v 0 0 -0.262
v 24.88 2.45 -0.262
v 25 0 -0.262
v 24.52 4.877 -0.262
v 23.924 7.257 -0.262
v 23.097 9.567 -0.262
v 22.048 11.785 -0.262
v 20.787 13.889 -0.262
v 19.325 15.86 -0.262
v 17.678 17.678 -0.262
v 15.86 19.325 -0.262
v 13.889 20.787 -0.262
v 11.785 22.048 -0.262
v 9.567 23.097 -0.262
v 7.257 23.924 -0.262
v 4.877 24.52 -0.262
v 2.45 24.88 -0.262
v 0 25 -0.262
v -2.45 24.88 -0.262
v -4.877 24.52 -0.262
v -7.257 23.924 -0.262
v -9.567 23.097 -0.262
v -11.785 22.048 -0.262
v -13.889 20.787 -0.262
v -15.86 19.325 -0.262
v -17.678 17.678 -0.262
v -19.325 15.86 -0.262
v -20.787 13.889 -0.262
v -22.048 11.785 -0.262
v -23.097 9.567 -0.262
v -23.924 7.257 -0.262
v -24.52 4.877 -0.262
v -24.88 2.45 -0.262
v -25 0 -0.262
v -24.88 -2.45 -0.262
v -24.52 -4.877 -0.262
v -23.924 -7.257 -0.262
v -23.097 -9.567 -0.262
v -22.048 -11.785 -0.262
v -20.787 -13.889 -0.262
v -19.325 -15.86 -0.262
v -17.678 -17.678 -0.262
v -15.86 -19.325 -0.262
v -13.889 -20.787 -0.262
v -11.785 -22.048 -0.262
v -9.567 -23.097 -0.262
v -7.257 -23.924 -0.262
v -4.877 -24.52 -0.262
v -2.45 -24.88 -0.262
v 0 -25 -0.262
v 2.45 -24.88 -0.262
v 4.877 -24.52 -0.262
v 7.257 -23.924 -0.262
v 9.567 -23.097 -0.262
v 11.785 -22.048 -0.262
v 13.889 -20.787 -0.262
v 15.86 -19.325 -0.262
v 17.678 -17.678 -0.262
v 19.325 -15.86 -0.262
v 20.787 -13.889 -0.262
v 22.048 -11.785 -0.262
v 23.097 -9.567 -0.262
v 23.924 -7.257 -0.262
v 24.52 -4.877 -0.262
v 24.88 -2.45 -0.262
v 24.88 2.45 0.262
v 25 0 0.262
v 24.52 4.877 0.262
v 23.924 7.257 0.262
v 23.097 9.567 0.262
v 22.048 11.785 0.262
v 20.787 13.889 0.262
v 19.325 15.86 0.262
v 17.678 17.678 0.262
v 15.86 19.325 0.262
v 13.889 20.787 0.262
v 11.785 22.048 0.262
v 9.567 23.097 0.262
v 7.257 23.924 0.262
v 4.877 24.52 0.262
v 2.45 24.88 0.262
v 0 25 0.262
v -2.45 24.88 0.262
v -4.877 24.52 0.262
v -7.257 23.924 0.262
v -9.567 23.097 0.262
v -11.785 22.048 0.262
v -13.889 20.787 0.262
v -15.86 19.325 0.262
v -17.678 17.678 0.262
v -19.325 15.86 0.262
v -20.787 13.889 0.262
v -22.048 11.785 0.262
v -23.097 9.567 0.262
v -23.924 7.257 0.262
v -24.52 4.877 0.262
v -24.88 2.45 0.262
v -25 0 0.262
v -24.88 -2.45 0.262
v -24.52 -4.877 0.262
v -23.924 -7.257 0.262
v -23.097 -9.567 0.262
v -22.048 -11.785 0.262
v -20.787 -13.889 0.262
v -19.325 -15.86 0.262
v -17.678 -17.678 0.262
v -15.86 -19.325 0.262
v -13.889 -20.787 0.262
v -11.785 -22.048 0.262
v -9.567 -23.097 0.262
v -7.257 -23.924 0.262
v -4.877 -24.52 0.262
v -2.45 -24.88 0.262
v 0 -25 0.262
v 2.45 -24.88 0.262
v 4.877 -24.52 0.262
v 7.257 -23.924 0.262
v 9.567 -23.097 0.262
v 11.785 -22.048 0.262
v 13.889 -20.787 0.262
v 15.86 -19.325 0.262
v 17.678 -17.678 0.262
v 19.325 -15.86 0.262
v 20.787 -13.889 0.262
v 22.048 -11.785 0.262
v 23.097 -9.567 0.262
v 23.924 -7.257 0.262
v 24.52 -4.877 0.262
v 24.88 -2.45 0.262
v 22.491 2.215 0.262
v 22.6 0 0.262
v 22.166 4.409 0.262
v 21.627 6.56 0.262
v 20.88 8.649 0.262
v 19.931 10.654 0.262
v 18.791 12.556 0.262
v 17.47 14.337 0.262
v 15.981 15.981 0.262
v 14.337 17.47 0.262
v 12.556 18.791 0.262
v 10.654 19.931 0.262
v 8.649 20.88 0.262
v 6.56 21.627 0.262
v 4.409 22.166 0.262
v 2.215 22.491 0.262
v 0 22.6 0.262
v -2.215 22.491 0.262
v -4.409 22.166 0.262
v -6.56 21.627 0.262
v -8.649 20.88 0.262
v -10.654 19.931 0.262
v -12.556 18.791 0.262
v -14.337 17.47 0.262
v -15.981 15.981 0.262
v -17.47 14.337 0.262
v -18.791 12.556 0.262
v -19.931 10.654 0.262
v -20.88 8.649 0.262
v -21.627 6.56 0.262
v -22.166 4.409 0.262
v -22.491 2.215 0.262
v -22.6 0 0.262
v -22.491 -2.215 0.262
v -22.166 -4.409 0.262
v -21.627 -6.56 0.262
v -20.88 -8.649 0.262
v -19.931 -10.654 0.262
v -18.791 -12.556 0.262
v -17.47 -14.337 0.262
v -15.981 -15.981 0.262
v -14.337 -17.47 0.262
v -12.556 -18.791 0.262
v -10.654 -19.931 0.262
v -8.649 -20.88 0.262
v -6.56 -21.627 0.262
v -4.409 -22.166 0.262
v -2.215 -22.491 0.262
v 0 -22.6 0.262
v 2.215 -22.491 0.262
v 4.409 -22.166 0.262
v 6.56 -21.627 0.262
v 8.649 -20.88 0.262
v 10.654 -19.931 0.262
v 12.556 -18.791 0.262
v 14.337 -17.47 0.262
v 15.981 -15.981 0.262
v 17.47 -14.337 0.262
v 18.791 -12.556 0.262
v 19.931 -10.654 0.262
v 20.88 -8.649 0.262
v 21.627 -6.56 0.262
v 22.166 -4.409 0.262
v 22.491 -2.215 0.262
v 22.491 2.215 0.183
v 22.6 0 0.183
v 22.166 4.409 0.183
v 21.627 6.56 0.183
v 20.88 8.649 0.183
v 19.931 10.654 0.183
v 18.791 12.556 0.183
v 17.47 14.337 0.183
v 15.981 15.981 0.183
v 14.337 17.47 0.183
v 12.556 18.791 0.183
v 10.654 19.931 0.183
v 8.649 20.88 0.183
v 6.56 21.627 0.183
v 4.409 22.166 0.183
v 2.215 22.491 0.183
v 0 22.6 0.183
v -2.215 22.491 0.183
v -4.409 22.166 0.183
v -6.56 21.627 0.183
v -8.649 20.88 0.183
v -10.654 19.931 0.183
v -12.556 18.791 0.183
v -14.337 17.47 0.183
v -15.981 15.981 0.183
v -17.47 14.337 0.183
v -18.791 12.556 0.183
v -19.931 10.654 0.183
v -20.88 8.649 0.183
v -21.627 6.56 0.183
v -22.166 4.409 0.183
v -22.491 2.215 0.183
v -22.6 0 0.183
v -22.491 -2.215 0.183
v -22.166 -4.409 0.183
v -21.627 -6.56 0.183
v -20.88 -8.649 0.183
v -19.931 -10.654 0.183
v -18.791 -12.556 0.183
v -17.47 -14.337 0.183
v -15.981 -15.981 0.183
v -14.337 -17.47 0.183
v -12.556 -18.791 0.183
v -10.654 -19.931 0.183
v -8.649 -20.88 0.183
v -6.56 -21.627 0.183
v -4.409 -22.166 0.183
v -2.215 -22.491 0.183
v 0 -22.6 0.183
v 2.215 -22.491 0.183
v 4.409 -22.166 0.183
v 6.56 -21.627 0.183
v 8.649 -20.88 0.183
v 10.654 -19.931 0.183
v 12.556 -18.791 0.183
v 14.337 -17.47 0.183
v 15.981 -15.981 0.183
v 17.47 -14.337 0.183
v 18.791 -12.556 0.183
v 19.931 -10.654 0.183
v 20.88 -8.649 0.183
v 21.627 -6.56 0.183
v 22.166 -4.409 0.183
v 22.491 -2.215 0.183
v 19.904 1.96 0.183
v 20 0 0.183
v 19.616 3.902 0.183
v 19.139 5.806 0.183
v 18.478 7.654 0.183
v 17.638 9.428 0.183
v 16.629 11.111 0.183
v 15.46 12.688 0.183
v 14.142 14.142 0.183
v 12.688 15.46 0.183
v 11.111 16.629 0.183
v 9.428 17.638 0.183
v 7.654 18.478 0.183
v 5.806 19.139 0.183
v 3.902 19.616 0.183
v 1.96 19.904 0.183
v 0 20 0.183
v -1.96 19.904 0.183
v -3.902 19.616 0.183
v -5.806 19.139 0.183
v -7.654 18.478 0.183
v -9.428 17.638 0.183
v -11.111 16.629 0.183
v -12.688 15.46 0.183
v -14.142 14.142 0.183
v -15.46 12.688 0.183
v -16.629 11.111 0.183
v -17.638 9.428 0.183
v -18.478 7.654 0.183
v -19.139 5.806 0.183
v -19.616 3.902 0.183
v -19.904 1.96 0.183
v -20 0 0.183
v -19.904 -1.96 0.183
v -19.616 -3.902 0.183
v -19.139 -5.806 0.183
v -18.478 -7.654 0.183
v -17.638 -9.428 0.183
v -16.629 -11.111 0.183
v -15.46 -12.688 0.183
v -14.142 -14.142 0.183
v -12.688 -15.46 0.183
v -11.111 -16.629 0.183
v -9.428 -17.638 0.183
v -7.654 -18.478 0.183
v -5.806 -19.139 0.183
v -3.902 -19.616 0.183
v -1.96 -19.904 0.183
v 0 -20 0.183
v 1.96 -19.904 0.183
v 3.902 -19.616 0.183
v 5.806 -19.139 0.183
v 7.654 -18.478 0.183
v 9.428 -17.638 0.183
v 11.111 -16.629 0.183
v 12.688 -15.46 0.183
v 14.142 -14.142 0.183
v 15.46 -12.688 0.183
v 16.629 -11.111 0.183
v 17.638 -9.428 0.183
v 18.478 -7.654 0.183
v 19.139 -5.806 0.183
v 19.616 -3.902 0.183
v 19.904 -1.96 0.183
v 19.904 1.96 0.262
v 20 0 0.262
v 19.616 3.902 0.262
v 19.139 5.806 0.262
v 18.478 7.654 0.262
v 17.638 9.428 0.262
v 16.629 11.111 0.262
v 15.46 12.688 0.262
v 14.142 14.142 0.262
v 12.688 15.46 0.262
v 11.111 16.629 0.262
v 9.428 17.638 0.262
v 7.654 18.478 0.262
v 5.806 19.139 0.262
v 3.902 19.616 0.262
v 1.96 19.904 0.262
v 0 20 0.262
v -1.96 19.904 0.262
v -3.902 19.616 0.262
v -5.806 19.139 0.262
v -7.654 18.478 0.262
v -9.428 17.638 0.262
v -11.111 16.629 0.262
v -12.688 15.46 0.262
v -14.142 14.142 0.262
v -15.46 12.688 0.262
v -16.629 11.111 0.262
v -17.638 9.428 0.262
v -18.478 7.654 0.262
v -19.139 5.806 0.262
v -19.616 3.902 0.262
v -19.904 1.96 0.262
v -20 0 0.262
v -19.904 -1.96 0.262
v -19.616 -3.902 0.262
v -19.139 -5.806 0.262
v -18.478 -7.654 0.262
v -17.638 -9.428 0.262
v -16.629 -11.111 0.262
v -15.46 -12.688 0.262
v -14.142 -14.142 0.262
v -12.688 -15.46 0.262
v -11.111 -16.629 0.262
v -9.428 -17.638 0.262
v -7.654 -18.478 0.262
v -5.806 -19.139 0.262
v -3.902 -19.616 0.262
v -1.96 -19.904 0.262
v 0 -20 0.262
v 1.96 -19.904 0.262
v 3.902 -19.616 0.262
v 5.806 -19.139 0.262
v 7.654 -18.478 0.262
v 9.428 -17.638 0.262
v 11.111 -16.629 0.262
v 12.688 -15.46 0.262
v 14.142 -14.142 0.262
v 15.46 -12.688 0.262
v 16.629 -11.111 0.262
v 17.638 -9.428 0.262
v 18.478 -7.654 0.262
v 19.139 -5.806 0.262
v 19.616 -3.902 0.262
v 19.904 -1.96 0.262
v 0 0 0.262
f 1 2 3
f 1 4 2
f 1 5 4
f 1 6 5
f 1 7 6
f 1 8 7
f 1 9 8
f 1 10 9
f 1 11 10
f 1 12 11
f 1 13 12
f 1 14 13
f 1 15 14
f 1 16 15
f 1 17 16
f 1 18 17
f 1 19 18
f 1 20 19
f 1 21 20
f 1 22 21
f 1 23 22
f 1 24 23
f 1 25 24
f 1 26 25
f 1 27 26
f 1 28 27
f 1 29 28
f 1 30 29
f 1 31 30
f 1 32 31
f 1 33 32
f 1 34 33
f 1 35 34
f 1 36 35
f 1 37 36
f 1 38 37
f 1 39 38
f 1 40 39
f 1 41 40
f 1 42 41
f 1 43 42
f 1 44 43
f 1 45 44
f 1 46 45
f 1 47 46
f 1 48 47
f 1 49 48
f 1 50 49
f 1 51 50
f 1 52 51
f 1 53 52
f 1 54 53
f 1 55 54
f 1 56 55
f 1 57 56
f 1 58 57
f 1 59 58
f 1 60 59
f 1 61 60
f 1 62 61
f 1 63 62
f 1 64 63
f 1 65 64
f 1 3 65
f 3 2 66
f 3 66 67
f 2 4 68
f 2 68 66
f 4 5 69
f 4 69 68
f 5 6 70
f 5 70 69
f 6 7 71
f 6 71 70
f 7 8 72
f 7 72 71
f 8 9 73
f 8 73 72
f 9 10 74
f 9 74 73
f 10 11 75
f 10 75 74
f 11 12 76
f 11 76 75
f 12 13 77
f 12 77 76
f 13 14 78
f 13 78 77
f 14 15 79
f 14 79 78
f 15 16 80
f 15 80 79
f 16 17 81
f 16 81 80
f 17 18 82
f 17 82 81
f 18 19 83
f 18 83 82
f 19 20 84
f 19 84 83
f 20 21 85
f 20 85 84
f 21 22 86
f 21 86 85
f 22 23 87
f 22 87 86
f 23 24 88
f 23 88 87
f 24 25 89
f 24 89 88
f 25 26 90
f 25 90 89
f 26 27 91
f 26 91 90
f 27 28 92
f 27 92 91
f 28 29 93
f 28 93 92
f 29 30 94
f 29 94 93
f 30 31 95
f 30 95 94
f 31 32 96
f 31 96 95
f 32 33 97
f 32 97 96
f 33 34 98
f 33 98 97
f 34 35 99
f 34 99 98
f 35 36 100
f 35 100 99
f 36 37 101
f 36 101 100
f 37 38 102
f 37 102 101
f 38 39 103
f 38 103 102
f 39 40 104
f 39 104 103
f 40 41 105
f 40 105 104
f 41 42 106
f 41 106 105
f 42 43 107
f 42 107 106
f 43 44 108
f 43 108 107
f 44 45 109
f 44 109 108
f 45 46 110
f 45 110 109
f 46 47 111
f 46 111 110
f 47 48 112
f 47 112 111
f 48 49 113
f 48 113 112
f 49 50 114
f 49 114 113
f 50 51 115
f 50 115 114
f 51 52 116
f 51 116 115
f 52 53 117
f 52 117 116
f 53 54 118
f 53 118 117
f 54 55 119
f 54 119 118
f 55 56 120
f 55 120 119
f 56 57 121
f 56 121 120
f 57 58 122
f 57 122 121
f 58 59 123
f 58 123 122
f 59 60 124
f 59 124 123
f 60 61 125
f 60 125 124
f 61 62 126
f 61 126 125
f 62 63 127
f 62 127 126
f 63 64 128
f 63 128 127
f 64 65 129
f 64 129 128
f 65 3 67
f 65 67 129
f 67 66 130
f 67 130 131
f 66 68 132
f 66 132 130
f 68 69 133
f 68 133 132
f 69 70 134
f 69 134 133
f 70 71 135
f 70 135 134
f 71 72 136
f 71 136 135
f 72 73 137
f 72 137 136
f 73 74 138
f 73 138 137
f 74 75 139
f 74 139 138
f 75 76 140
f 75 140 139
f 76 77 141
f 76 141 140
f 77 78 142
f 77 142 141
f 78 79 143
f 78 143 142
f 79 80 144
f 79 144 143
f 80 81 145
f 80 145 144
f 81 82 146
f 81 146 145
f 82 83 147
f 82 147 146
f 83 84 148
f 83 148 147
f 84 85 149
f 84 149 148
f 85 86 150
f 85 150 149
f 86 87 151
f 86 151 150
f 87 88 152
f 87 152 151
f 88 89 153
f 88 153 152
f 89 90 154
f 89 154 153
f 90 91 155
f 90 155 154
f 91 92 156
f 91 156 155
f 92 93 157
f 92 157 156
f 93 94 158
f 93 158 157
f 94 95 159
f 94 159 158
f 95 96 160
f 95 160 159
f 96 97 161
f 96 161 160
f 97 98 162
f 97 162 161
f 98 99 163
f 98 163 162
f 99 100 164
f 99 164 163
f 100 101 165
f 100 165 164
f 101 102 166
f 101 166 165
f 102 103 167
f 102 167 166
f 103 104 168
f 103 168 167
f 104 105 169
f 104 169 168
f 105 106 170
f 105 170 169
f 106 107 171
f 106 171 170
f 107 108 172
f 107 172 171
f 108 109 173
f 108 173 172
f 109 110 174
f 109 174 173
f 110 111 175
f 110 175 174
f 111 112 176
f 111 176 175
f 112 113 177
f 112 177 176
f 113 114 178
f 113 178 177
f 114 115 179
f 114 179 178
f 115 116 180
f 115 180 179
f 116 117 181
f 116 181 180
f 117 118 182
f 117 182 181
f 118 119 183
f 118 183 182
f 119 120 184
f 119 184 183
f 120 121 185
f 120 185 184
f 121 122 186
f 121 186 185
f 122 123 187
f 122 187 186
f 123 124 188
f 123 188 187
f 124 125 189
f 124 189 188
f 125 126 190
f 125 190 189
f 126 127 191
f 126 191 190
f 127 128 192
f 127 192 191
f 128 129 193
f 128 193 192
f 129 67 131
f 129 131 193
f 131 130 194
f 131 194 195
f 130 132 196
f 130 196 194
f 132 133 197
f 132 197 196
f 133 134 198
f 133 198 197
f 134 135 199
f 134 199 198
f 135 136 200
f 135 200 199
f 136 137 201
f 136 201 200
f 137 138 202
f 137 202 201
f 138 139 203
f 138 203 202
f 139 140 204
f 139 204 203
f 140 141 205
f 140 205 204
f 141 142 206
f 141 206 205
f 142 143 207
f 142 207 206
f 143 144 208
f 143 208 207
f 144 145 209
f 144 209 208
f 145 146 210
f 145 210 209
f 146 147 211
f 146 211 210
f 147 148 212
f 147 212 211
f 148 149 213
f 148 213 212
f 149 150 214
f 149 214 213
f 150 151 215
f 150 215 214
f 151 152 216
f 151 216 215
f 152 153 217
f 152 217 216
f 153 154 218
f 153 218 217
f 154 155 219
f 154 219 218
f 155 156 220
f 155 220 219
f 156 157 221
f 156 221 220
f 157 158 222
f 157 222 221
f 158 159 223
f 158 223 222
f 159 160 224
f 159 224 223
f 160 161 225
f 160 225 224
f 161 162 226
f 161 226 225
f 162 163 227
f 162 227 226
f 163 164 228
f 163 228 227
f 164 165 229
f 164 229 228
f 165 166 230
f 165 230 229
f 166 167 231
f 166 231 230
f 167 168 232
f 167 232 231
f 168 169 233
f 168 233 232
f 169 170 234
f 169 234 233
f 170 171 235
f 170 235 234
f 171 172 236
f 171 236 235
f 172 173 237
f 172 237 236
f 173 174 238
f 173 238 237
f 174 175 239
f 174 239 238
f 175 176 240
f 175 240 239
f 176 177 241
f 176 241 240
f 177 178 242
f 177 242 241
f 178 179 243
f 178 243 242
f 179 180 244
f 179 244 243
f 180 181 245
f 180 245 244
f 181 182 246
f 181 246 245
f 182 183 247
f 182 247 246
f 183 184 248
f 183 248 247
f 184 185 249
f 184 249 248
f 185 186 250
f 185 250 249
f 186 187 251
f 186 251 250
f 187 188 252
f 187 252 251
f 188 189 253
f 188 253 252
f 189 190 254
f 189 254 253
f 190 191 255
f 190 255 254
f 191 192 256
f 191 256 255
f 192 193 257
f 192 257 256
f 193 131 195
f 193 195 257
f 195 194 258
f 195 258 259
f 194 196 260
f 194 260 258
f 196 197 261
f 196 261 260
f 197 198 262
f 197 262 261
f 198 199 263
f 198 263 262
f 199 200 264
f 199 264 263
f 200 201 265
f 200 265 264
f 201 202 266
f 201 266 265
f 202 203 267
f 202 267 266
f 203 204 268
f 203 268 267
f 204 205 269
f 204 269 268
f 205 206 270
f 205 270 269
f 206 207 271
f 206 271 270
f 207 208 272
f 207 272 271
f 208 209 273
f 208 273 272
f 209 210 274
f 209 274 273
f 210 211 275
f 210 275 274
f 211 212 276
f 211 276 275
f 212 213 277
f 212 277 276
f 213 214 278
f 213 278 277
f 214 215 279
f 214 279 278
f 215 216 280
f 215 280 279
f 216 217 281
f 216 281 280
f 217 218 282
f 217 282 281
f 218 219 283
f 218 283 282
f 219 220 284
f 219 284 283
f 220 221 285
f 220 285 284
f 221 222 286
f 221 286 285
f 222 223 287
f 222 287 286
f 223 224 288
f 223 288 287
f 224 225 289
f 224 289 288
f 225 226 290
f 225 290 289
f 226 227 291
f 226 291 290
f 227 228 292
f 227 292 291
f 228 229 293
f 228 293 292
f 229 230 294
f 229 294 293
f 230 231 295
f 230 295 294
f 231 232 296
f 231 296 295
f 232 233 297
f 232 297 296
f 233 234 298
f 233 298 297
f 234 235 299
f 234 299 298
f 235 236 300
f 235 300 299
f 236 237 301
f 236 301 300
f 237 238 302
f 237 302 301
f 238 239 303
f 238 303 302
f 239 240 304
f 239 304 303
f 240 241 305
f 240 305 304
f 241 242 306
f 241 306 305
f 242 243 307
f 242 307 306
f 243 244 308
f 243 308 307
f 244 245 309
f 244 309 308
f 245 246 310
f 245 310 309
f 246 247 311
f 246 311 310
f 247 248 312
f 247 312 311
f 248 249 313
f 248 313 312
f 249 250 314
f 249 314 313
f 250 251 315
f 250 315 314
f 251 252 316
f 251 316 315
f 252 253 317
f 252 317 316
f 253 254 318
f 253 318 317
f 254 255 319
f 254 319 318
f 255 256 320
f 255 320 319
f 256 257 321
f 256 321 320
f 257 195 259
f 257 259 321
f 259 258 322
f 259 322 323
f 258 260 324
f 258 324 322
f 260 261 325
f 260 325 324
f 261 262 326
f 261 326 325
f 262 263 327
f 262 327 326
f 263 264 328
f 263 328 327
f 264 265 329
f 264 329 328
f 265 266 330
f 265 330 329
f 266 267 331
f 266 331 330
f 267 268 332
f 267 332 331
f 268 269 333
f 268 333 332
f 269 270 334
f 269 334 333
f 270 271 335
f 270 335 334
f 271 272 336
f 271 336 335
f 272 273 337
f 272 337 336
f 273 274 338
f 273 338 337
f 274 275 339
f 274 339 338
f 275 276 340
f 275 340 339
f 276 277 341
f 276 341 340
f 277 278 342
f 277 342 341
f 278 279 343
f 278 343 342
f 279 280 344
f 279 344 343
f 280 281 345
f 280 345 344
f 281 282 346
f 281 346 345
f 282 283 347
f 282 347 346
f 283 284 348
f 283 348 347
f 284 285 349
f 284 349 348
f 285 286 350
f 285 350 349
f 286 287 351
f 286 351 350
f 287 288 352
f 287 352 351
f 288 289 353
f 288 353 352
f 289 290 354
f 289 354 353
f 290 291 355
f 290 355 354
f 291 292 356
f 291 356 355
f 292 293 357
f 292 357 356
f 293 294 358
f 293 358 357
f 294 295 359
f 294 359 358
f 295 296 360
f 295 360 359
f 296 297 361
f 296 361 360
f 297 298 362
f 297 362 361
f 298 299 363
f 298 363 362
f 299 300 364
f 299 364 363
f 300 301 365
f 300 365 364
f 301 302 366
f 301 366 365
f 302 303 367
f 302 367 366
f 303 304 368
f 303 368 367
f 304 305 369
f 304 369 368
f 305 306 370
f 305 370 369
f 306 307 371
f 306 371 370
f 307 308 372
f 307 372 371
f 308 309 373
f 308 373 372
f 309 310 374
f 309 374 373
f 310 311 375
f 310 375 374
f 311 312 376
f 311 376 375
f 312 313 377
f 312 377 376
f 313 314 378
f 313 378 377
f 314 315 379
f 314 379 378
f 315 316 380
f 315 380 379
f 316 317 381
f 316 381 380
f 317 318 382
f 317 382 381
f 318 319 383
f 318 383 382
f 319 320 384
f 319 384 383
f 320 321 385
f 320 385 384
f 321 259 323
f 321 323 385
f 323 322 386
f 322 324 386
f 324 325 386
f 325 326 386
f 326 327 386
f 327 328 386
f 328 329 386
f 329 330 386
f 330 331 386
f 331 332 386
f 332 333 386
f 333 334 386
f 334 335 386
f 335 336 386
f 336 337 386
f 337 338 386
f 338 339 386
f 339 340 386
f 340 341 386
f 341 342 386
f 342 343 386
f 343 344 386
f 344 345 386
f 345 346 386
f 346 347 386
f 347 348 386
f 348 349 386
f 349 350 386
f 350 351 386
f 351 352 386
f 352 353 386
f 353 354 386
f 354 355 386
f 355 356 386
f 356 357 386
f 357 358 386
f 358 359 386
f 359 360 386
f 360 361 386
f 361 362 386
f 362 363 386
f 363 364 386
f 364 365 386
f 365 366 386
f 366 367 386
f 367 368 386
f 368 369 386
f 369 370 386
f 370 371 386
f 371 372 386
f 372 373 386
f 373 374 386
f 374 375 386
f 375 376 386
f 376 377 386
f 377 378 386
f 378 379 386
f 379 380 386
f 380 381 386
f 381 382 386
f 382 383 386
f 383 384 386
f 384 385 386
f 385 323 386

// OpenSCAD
// ============================================================================
// Atom Lithography Machine — Parametric OpenSCAD Module (S3.1-01)
// ============================================================================
// part_id           : S3.1-01
// parent_bom_id     : S3.1
// subsystem         : S3
// part_name         : Pikselli p-i-n diyot IBIC algilama katmanli substrat tasiyici
// material          : Si
// temp_stage        : 4 K - 300 K
// vacuum_grade      : UHV 1e-9 mbar
// tolerance         : ±0.05 pF
// computed_mass_kg  : 0.00233
// envelope_mm       : 50.000 x 50.000 x 0.525
// design_maturity   : M0_M1_DETAILED_CAD_DESIGN_ONLY
// no_lab_measurement: true
// iec61508_certified: false
// semi_s2_certified : false
// Units: millimeters (mm)
// ============================================================================

$fn = 64;

// Nominal bounding envelope parameters (mm)
bbox_x = 50.0000;
bbox_y = 50.0000;
bbox_z = 0.5250;

// Part-specific parametric dimensions
wafer_od_mm = 50.0;
wafer_thickness_mm = 0.525;
active_field_mm = 16.0;
guard_moat_r_in_mm = 20.0;
guard_moat_r_out_mm = 22.6;

// Interface / port parameters (mm)
port_active_implant_plane_od = 50.000;
port_wafer_pocket_seat_od = 50.000;

module part_S3_1_01() {
  union() {
    // Ø50x0.525 mm high-res Si p-i-n IBIC wafer w/ guard-ring moat
    rotate_extrude(angle=360) polygon(points=[[0.0000, -0.2625], [25.0000, -0.2625], [25.0000, 0.2625], [22.6000, 0.2625], [22.6000, 0.1825], [20.0000, 0.1825], [20.0000, 0.2625], [0.0000, 0.2625]]);
  }
}

// World assembly mounting transform (global machine frame, mm / deg):
// translate([0.000, 0.000, -0.263]) rotate([0.000, 0.000, 0.000]) part_S3_1_01();

part_S3_1_01();
